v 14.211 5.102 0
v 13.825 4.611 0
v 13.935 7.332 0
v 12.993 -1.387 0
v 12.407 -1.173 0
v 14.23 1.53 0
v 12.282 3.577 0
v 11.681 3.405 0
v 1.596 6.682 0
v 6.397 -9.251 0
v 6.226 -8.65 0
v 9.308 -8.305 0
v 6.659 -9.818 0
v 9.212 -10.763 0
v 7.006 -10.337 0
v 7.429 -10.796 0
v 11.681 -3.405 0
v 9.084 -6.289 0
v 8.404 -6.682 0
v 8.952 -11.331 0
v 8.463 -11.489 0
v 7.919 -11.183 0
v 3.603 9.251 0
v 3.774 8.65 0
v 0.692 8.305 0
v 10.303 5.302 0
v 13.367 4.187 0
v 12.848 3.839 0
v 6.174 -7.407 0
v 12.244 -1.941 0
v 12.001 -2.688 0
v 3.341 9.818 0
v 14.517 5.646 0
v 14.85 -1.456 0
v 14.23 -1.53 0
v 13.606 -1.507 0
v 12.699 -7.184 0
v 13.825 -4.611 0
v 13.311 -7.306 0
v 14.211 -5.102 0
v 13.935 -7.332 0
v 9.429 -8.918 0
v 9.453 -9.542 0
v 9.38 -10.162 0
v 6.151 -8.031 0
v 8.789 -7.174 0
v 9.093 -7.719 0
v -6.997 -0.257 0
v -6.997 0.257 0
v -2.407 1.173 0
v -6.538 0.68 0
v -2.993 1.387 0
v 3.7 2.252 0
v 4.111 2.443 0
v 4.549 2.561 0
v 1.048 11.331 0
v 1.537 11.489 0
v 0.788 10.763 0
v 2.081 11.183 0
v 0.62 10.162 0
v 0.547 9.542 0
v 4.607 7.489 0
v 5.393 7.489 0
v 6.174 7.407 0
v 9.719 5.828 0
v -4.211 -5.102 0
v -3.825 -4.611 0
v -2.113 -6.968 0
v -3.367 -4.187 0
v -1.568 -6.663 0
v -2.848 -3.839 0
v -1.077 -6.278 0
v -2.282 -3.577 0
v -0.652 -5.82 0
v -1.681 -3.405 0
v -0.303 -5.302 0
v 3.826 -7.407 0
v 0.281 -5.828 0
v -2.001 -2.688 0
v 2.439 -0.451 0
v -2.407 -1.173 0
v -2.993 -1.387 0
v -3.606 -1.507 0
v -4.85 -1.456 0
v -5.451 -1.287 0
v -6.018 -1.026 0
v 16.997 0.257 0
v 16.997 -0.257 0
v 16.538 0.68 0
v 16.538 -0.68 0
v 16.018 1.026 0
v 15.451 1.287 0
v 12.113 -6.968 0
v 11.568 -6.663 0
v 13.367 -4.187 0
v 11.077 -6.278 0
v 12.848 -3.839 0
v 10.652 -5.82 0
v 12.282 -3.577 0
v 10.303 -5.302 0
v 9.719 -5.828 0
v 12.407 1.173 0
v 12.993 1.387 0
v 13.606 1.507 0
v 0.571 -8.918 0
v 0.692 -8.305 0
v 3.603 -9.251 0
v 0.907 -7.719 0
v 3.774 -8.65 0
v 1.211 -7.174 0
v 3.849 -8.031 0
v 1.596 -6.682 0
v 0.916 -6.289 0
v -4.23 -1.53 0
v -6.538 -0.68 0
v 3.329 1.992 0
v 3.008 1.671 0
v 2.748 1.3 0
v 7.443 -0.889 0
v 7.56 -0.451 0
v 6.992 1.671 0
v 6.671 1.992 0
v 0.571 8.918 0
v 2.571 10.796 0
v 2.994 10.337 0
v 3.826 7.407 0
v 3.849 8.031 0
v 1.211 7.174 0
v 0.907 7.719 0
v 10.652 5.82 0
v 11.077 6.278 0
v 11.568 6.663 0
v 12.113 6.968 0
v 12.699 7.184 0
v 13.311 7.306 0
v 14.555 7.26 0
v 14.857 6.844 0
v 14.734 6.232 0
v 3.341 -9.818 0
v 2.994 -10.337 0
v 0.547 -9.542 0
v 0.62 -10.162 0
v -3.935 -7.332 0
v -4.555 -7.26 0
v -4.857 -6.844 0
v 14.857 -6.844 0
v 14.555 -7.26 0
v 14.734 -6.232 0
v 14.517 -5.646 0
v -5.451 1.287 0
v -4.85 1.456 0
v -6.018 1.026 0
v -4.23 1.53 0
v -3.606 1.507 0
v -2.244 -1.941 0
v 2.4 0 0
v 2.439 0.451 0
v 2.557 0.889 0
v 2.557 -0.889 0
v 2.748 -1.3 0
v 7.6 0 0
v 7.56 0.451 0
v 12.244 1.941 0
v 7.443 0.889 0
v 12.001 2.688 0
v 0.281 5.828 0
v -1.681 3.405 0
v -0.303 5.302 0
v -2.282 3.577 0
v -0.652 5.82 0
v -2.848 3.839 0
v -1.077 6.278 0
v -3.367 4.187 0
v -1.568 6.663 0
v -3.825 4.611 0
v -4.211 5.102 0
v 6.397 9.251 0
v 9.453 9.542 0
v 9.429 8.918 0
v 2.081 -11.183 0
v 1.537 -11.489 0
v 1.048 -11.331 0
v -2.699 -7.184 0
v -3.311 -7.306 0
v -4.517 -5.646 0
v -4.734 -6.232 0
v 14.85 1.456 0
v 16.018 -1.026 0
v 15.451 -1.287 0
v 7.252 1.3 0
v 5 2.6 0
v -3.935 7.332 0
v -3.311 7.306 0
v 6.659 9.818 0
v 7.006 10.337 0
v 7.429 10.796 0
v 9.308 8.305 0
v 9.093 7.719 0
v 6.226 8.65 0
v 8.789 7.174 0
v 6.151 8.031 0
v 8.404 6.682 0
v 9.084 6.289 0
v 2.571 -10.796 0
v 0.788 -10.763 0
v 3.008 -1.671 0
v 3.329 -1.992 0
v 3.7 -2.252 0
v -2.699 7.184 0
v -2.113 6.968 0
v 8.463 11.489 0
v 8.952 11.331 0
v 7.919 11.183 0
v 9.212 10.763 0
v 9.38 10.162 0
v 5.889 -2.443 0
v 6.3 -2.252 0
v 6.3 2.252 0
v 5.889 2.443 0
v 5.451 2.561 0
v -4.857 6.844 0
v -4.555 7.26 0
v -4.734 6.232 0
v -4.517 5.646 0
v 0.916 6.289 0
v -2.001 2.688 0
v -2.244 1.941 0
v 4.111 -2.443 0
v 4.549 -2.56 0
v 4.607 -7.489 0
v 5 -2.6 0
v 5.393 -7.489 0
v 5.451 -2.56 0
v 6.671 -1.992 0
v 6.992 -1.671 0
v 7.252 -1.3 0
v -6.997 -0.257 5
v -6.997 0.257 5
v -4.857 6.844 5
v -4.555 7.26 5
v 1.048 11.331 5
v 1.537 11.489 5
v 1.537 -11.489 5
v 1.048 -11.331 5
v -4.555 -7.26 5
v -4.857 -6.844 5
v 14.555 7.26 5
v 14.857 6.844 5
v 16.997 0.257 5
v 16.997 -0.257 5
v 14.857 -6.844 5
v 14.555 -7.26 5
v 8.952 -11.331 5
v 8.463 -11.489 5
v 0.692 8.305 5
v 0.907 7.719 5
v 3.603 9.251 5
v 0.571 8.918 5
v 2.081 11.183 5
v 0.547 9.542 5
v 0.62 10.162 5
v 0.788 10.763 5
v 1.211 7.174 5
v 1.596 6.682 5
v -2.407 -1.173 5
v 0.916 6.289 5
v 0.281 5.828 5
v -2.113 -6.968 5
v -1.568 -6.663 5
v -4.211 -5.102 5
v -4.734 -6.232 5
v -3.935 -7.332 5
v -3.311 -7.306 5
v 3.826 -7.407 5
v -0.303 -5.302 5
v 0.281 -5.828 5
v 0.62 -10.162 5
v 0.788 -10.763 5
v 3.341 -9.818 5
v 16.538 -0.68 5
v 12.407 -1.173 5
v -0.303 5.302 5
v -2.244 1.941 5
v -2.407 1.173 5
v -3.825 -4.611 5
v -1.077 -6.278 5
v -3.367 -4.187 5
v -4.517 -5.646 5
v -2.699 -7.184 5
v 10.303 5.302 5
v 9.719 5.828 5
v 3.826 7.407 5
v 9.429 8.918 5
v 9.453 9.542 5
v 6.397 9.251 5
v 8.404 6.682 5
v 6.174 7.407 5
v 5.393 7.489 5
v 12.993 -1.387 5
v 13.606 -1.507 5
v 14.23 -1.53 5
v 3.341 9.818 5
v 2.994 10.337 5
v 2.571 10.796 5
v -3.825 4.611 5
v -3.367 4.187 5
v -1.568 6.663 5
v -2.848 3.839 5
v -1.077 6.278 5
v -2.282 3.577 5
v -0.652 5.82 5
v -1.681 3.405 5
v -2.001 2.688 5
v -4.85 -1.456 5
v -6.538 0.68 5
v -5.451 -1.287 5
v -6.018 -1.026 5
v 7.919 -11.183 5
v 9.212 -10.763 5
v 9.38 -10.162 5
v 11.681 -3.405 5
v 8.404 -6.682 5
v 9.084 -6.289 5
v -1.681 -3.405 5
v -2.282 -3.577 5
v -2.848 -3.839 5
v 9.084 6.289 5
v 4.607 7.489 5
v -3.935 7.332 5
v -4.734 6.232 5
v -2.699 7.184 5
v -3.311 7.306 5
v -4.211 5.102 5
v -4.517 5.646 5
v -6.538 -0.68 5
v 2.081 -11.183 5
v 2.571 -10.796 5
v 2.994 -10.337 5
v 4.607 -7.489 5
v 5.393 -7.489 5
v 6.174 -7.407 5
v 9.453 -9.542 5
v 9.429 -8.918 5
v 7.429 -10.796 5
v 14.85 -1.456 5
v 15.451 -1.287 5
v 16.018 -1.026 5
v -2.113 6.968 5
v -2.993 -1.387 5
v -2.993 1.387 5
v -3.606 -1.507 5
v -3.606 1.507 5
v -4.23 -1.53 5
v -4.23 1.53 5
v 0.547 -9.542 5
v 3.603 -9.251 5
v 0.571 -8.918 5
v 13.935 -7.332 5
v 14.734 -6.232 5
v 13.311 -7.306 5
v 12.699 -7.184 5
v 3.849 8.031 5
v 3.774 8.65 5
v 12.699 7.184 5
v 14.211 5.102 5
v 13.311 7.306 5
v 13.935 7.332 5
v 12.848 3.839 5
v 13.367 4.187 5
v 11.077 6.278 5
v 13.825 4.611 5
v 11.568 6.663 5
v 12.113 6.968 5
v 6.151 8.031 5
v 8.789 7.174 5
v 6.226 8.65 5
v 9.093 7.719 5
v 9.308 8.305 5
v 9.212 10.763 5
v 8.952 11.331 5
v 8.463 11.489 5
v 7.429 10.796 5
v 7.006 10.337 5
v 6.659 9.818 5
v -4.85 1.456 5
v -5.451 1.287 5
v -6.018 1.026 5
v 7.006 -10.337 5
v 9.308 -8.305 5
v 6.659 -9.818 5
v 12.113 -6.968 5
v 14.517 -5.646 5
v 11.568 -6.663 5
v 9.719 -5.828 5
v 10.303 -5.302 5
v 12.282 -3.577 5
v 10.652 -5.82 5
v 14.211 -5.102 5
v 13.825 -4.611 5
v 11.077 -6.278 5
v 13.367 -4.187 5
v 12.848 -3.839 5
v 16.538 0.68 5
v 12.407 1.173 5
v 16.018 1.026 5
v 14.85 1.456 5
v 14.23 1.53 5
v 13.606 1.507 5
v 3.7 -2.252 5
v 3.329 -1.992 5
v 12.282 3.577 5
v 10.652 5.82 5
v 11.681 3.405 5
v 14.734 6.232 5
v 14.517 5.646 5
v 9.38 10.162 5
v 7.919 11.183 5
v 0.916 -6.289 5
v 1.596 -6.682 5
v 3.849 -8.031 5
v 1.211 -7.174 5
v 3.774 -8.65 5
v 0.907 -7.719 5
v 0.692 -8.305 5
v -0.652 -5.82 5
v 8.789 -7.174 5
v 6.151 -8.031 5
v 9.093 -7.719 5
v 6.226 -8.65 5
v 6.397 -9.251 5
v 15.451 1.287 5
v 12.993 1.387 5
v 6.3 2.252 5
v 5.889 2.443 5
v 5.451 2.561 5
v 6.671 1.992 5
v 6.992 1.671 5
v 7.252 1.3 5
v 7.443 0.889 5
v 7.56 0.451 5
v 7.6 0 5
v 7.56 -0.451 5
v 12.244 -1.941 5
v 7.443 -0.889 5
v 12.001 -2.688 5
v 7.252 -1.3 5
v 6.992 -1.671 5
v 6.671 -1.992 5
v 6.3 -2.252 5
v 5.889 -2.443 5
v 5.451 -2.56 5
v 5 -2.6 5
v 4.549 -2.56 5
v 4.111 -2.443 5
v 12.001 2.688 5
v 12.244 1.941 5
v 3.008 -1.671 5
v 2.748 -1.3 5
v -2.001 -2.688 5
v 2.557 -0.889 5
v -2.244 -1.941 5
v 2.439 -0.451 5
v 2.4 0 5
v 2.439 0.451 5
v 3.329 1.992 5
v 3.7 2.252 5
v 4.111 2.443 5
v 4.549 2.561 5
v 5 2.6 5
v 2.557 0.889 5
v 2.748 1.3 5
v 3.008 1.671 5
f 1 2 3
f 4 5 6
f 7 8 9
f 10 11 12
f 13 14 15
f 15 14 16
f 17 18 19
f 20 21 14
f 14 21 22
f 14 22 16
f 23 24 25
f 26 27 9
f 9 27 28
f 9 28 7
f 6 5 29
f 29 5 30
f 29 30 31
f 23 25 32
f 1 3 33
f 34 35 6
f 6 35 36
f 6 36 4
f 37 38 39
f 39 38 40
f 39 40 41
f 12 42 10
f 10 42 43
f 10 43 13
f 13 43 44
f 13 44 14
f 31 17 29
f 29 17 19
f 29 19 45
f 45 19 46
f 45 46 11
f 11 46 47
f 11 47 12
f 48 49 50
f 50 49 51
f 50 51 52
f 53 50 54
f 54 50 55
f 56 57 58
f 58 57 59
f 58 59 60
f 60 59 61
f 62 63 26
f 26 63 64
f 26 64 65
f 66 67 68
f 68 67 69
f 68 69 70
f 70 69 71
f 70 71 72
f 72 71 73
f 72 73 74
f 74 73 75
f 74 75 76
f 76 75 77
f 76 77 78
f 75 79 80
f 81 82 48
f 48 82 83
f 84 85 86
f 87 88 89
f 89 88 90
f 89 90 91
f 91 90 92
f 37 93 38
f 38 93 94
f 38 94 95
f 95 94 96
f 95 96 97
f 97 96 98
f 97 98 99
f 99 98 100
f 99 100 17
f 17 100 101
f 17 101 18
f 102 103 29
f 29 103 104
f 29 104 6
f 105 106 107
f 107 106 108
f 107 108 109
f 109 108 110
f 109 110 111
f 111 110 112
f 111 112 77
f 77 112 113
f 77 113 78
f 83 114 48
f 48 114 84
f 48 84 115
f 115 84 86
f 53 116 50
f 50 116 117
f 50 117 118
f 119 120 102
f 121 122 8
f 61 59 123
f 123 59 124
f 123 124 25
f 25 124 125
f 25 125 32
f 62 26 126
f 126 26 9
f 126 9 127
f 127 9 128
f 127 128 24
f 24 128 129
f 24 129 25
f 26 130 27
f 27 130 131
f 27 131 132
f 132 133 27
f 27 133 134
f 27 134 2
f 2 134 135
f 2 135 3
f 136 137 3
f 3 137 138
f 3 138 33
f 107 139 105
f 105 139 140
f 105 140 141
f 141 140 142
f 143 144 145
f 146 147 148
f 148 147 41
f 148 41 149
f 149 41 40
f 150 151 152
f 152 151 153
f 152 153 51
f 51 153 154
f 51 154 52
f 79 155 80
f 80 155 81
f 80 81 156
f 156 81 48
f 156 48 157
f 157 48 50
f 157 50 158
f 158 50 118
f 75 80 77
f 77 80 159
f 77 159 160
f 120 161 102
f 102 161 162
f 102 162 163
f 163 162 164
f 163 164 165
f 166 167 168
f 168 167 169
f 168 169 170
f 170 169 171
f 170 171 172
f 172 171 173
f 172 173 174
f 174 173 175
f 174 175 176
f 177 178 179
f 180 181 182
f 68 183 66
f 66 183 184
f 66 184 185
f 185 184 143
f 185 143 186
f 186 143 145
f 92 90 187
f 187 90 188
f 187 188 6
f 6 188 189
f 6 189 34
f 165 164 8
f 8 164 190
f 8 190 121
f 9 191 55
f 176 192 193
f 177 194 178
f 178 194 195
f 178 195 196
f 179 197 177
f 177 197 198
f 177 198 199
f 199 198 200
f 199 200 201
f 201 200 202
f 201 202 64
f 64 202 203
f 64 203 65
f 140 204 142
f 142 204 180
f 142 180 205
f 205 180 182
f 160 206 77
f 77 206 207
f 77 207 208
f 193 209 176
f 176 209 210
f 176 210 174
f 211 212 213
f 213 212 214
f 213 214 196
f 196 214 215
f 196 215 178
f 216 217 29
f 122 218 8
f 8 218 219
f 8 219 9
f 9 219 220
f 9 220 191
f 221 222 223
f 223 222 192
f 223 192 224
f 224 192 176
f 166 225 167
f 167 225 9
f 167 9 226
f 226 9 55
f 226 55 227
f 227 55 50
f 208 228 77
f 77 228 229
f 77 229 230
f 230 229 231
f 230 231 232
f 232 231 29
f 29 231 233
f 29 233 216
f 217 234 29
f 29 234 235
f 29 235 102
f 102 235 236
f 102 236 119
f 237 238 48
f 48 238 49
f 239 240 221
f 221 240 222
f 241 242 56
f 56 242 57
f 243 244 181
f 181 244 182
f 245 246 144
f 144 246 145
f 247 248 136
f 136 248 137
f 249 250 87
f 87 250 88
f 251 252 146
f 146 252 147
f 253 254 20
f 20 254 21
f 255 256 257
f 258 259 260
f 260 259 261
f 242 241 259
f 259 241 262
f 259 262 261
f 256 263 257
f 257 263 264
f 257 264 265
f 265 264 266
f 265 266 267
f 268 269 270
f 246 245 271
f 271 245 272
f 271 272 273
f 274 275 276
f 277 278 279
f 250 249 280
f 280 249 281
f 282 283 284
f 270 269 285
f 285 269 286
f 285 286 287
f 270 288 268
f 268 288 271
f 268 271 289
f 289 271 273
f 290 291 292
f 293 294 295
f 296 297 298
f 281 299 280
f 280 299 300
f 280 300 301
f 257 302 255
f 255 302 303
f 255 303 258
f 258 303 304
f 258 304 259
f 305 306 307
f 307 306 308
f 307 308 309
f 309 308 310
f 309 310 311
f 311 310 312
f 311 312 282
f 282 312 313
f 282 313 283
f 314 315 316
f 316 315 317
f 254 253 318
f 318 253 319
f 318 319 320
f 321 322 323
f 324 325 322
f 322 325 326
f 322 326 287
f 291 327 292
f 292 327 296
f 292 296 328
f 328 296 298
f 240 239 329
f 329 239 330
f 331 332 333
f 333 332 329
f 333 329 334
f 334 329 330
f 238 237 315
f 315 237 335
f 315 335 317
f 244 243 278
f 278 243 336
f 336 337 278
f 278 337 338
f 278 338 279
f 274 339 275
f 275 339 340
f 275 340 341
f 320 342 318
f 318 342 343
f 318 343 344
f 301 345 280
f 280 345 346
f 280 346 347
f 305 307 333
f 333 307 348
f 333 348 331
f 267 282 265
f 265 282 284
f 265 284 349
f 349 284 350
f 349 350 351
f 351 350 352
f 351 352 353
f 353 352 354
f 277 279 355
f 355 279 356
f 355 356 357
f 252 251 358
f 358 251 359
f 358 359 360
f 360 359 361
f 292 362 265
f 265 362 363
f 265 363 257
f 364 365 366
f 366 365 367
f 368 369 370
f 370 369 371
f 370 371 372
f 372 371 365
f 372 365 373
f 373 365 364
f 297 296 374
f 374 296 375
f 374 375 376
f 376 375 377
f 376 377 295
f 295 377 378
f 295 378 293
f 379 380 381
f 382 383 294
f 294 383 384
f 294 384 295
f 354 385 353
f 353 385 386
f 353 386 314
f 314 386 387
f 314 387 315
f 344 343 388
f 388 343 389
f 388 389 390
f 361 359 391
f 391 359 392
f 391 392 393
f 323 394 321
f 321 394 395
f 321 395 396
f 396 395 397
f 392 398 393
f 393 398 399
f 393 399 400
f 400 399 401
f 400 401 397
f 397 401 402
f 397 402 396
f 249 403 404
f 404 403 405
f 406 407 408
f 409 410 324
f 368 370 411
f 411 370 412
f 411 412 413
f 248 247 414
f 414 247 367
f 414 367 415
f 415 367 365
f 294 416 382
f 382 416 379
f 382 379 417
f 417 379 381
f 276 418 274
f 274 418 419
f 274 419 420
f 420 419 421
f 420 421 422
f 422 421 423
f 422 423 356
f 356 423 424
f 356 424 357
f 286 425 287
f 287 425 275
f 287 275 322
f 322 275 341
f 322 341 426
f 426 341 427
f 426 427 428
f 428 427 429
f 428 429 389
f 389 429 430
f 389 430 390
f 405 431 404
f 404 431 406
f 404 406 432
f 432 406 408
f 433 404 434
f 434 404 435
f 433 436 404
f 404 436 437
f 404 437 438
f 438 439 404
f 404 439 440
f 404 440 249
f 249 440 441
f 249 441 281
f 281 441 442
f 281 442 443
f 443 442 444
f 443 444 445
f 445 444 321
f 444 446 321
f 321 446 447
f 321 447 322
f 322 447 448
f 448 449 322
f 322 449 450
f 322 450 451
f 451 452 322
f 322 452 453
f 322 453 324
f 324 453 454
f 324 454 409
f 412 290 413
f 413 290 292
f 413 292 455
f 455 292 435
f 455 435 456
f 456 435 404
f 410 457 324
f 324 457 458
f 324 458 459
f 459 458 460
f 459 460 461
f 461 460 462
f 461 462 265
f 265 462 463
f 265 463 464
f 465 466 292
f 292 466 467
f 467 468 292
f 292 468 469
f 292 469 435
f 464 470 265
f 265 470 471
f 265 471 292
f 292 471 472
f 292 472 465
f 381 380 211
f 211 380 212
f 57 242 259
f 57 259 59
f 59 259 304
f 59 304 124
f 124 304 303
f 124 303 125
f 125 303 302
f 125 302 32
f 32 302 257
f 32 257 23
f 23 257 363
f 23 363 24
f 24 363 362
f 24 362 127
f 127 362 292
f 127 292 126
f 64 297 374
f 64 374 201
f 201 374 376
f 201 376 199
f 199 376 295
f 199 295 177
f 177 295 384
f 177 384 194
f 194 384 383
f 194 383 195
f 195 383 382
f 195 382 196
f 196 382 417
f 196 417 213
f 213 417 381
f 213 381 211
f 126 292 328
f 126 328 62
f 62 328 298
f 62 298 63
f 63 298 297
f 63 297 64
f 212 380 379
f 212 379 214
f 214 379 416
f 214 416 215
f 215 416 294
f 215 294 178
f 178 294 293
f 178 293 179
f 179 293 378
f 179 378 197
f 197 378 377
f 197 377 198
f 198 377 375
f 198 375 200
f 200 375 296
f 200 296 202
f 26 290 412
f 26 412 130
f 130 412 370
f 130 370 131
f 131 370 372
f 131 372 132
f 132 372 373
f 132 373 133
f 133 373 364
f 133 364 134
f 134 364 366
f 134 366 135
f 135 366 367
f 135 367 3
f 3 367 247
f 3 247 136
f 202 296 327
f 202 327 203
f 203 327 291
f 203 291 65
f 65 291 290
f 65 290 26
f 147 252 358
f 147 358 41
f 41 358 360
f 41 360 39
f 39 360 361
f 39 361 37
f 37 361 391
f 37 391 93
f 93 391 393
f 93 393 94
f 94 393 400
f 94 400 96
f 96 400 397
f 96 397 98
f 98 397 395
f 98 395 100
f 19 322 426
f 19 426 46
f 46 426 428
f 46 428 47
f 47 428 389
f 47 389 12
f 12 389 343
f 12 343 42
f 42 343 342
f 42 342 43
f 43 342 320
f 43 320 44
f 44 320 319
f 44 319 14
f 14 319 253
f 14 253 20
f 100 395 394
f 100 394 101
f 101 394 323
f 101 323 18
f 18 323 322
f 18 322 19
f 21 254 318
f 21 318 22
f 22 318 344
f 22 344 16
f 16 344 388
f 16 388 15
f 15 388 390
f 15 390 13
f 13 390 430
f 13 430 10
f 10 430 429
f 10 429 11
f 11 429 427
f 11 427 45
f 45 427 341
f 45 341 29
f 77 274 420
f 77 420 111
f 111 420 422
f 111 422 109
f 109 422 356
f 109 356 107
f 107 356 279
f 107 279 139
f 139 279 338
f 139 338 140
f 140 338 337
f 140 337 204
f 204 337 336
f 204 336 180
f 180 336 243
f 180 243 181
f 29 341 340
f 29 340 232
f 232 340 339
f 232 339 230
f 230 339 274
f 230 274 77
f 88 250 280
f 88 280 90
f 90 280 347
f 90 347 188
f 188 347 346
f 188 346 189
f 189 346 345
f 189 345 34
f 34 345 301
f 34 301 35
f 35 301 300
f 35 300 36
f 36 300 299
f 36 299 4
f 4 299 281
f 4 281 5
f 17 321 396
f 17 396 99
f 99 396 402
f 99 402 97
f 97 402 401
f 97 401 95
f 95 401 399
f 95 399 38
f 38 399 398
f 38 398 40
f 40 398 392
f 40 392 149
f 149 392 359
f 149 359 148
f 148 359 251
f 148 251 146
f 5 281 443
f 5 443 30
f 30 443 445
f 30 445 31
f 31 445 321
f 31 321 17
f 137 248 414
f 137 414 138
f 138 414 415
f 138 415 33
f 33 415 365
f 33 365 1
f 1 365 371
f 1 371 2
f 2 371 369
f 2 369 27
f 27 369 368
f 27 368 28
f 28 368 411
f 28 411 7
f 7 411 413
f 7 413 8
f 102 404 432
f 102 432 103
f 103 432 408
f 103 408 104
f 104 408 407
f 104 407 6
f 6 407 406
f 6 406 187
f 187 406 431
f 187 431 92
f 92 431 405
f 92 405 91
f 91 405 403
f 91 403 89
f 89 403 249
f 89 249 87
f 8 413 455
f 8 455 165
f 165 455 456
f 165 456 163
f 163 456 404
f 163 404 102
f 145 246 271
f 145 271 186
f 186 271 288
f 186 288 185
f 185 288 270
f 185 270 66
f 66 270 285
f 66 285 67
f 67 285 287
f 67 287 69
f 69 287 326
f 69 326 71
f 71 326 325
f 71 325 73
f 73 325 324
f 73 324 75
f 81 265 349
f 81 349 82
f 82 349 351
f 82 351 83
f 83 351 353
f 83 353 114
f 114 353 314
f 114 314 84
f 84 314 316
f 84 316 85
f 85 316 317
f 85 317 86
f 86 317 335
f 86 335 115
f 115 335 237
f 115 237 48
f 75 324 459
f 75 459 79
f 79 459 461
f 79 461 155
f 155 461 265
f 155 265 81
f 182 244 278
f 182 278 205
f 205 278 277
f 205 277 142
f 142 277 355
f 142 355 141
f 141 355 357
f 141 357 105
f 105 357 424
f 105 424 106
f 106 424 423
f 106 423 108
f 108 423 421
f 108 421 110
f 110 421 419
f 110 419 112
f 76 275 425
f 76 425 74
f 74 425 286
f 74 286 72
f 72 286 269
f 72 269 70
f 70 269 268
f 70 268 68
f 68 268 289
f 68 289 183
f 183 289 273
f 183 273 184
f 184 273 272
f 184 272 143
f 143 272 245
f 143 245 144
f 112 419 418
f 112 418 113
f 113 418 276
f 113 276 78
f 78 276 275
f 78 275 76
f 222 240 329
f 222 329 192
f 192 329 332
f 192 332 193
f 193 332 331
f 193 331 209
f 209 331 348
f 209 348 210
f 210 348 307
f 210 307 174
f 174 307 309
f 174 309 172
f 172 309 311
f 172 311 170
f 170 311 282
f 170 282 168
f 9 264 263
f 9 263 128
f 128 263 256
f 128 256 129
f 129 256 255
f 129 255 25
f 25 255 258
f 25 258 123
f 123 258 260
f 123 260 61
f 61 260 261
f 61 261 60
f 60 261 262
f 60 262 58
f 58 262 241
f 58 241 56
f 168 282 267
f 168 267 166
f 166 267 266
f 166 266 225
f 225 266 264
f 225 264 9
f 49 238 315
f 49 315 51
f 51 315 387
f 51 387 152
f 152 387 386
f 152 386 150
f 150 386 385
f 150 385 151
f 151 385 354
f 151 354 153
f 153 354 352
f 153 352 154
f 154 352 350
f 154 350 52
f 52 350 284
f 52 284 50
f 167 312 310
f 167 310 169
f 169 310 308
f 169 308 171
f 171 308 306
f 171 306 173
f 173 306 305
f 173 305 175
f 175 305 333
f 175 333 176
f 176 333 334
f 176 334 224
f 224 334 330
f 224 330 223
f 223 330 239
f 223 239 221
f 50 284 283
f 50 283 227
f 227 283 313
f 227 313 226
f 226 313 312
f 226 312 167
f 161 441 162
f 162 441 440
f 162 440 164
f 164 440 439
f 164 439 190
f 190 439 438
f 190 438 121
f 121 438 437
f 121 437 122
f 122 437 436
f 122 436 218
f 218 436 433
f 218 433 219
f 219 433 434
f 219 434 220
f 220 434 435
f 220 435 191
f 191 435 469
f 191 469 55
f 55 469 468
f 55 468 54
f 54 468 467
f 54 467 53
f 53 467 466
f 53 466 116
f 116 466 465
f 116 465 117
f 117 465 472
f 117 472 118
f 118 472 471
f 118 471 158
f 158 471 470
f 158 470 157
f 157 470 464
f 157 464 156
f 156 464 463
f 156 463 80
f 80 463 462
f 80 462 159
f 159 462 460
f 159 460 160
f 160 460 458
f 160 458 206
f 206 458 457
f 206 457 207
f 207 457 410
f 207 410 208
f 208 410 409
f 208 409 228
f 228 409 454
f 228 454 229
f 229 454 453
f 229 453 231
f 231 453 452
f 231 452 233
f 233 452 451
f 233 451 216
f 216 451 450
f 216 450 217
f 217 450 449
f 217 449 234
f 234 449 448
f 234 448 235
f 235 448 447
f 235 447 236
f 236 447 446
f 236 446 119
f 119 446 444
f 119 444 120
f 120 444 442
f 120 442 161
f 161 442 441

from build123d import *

# Parameters (mm, degrees)
BASPROSKE_W                      = 5
BASPROSKE_H                      = 12
TOOTHCUT_DEPTH                   = 18.691806013
TEETHCUTS_COUNT                  = 10
TEETHCUTS_ANGLE                  = 324
BORSKE_R                         = 2.5
BORE_DEPTH                       = 50.0000508
S_LIDO_MOVER_COPIAR1_START       = -12
S_LIDO_MOVER_COPIAR1_OUTLINE_W   = 5
S_LIDO_MOVER_COPIAR1_OUTLINE_H   = 26
S_LIDO_MOVER_COPIAR1_DEPTH       = 12
S_LIDO_MOVER_COPIAR1_START_2     = 5
S_LIDO_MOVER_COPIAR1_2_OUTLINE_W = 5
S_LIDO_MOVER_COPIAR1_2_OUTLINE_H = 26
S_LIDO_MOVER_COPIAR1_2_DEPTH     = 7
S_LIDO_MOVER_COPIAR1_3_DEPTH     = 5
S_LIDO_MOVER_COPIAR1_4_OUTLINE_R = 2.5
S_LIDO_MOVER_COPIAR1_4_DEPTH     = 5
CROQUIS1_R                       = 2.6
CORTAR_EXTRUIR2_DEPTH            = 22.118885154


# Read off the part's stored shape, not the designer's step: Sólido-Mover/Copiar1
with BuildPart() as part:
    # BasProSke → Base-Revolve (revolve)
    with BuildSketch(Plane(origin=(0, 0, 0), x_dir=(1, 0, 0), z_dir=(0, 1, 0)), mode=Mode.PRIVATE) as base_revolve_sk:
        with Locations((2.5, 6)):
            Rectangle(BASPROSKE_W, BASPROSKE_H)
    revolve(base_revolve_sk.sketch.rotate(Axis((-10, 0, 0), (1, 0, 0)), 180), axis=Axis((-10, 0, 0), (1, 0, 0)))

    # TooCutSke → ToothCut (cut, through all)
    with BuildSketch(Plane(origin=(0, 0, 0), x_dir=(0, 0, -1), z_dir=(1, 0, 0))):
        with BuildLine():
            ThreePointArc((1.173662691, 7.406586048), (0, 7.499), (-1.173662691, 7.406586048))
            ThreePointArc((-1.173662691, 7.406586048), (-1.668191438, 9.834565786), (-3.497907776, 11.50542856))
            ThreePointArc((-3.497907776, 11.50542856), (0, 12.0254), (3.497907776, 11.50542856))
            ThreePointArc((3.497907776, 11.50542856), (1.668191438, 9.834565786), (1.173662691, 7.406586048))
        make_face()
    toothcut = extrude(amount=TOOTHCUT_DEPTH, mode=Mode.SUBTRACT)

    # TeethCuts: ToothCut ×10 about axis
    teethcuts_axis = Axis((-10, 0, 0), (1, 0, 0))
    for i in range(1, TEETHCUTS_COUNT):
        add(toothcut.rotate(teethcuts_axis, i * TEETHCUTS_ANGLE / (TEETHCUTS_COUNT - 1)), mode=Mode.SUBTRACT)

    # BorSke → Bore (cut, symmetric)
    with BuildSketch(Plane(origin=(0, 0, 0), x_dir=(0, 0, -1), z_dir=(1, 0, 0))):
        with Locations(Location((0, 0, 0), (0, 0, 180))):
            Circle(BORSKE_R)
    extrude(amount=BORE_DEPTH, both=True, mode=Mode.SUBTRACT)

    # Sólido-Mover/Copiar1 outline → Sólido-Mover/Copiar1 (cut)
    with BuildSketch(Plane.XY.offset(S_LIDO_MOVER_COPIAR1_START)):
        with Locations((2.5, 0)):
            Rectangle(S_LIDO_MOVER_COPIAR1_OUTLINE_W, S_LIDO_MOVER_COPIAR1_OUTLINE_H)
    extrude(amount=S_LIDO_MOVER_COPIAR1_DEPTH, mode=Mode.SUBTRACT)

    # S_lido-Mover_Copiar1 2 outline → S_lido-Mover_Copiar1 2 (cut)
    with BuildSketch(Plane.XY.offset(S_LIDO_MOVER_COPIAR1_START_2)):
        with Locations((2.5, 0)):
            Rectangle(S_LIDO_MOVER_COPIAR1_2_OUTLINE_W, S_LIDO_MOVER_COPIAR1_2_OUTLINE_H)
    extrude(amount=S_LIDO_MOVER_COPIAR1_2_DEPTH, mode=Mode.SUBTRACT)

    # S_lido-Mover_Copiar1 3 outline → S_lido-Mover_Copiar1 3 (cut)
    with BuildSketch(Plane.XY):
        with BuildLine():
            Line((0, 13), (0, 5.588828232))
            ThreePointArc((0, 5.588828232), (0.762620659, 6.187052394), (1.596031014, 6.681915604))
            ThreePointArc((1.596031014, 6.681915604), (0.571180494, 8.917819898), (1.0483384, 11.330682707))
            ThreePointArc((1.0483384, 11.330682707), (1.291796067, 11.412678196), (1.536953197, 11.489443278))
            ThreePointArc((1.536953197, 11.489443278), (3.341227227, 9.817862641), (3.826337309, 7.406586048))
            ThreePointArc((3.826337309, 7.406586048), (4.411352302, 7.475860812), (5, 7.499))
            Line((5, 7.499), (5, 13))
            Line((5, 13), (0, 13))
        make_face()
        with BuildLine():
            ThreePointArc((1.596031014, -6.681915604), (0.762620659, -6.187052394), (0, -5.588828232))
            Line((0, -5.588828232), (0, -13))
            Line((0, -13), (5, -13))
            Line((5, -13), (5, -7.499))
            ThreePointArc((5, -7.499), (4.411352302, -7.475860812), (3.826337309, -7.406586048))
            ThreePointArc((3.826337309, -7.406586048), (3.341227227, -9.817862641), (1.536953197, -11.489443278))
            ThreePointArc((1.536953197, -11.489443278), (1.291796067, -11.412678196), (1.0483384, -11.330682707))
            ThreePointArc((1.0483384, -11.330682707), (0.571180494, -8.917819898), (1.596031014, -6.681915604))
        make_face()
        with BuildLine():
            Line((5, -2.5), (5, 2.5))
            ThreePointArc((5, 2.5), (2.5, 0), (5, -2.5))
        make_face()
    extrude(amount=S_LIDO_MOVER_COPIAR1_3_DEPTH, mode=Mode.SUBTRACT)

    # S_lido-Mover_Copiar1 4 outline → S_lido-Mover_Copiar1 4 (add)
    with BuildSketch(Plane.XY):
        with BuildLine():
            ThreePointArc((-2.406763642, 1.172541409), (-4.849931218, 1.456299749), (-6.997250213, 0.256880001))
            ThreePointArc((-6.997250213, 0.256880001), (-7, 0), (-6.997250213, -0.256880001))
            ThreePointArc((-6.997250213, -0.256880001), (-4.849931218, -1.456299749), (-2.406763642, -1.172541409))
            ThreePointArc((-2.406763642, -1.172541409), (-2.131972816, -2.317318441), (-1.681400207, -3.404980509))
            ThreePointArc((-1.681400207, -3.404980509), (-3.824753264, -4.61147306), (-4.856969584, -6.843986457))
            ThreePointArc((-4.856969584, -6.843986457), (-4.708203933, -7.053423027), (-4.554989032, -7.259627029))
            ThreePointArc((-4.554989032, -7.259627029), (-2.112770233, -6.967815552), (-0.302995112, -5.302192362))
            ThreePointArc((-0.302995112, -5.302192362), (0.592198393, -6.066818441), (1.596031014, -6.681915604))
            ThreePointArc((1.596031014, -6.681915604), (0.571180494, -8.917819898), (1.0483384, -11.330682707))
            ThreePointArc((1.0483384, -11.330682707), (1.291796067, -11.412678196), (1.536953197, -11.489443278))
            ThreePointArc((1.536953197, -11.489443278), (3.341227227, -9.817862641), (3.826337309, -7.406586048))
            ThreePointArc((3.826337309, -7.406586048), (5, -7.499), (6.173662691, -7.406586048))
            ThreePointArc((6.173662691, -7.406586048), (6.658772773, -9.817862641), (8.463046803, -11.489443278))
            ThreePointArc((8.463046803, -11.489443278), (8.708203933, -11.412678196), (8.9516616, -11.330682707))
            ThreePointArc((8.9516616, -11.330682707), (9.428819506, -8.917819898), (8.403968986, -6.681915604))
            ThreePointArc((8.403968986, -6.681915604), (9.407801607, -6.066818441), (10.302995112, -5.302192362))
            ThreePointArc((10.302995112, -5.302192362), (12.112770233, -6.967815552), (14.554989032, -7.259627029))
            ThreePointArc((14.554989032, -7.259627029), (14.708203933, -7.053423027), (14.856969584, -6.843986457))
            ThreePointArc((14.856969584, -6.843986457), (13.824753264, -4.61147306), (11.681400207, -3.404980509))
            ThreePointArc((11.681400207, -3.404980509), (12.131972816, -2.317318441), (12.406763642, -1.172541409))
            ThreePointArc((12.406763642, -1.172541409), (14.849931218, -1.456299749), (16.997250213, -0.256880001))
            ThreePointArc((16.997250213, -0.256880001), (17, 0), (16.997250213, 0.256880001))
            ThreePointArc((16.997250213, 0.256880001), (14.849931218, 1.456299749), (12.406763642, 1.172541409))
            ThreePointArc((12.406763642, 1.172541409), (12.131972816, 2.317318441), (11.681400207, 3.404980509))
            ThreePointArc((11.681400207, 3.404980509), (13.824753264, 4.61147306), (14.856969584, 6.843986457))
            ThreePointArc((14.856969584, 6.843986457), (14.708203933, 7.053423027), (14.554989032, 7.259627029))
            ThreePointArc((14.554989032, 7.259627029), (12.112770233, 6.967815552), (10.302995112, 5.302192362))
            ThreePointArc((10.302995112, 5.302192362), (9.407801607, 6.066818441), (8.403968986, 6.681915604))
            ThreePointArc((8.403968986, 6.681915604), (9.428819506, 8.917819898), (8.9516616, 11.330682707))
            ThreePointArc((8.9516616, 11.330682707), (8.708203933, 11.412678196), (8.463046803, 11.489443278))
            ThreePointArc((8.463046803, 11.489443278), (6.658772773, 9.817862641), (6.173662691, 7.406586048))
            ThreePointArc((6.173662691, 7.406586048), (5, 7.499), (3.826337309, 7.406586048))
            ThreePointArc((3.826337309, 7.406586048), (3.341227227, 9.817862641), (1.536953197, 11.489443278))
            ThreePointArc((1.536953197, 11.489443278), (1.291796067, 11.412678196), (1.0483384, 11.330682707))
            ThreePointArc((1.0483384, 11.330682707), (0.571180494, 8.917819898), (1.596031014, 6.681915604))
            ThreePointArc((1.596031014, 6.681915604), (0.592198393, 6.066818441), (-0.302995112, 5.302192362))
            ThreePointArc((-0.302995112, 5.302192362), (-2.112770233, 6.967815552), (-4.554989032, 7.259627029))
            ThreePointArc((-4.554989032, 7.259627029), (-4.708203933, 7.053423027), (-4.856969584, 6.843986457))
            ThreePointArc((-4.856969584, 6.843986457), (-3.824753264, 4.61147306), (-1.681400207, 3.404980509))
            ThreePointArc((-1.681400207, 3.404980509), (-2.131972816, 2.317318441), (-2.406763642, 1.172541409))
        make_face()
        with Locations((5, 0)):
            Circle(S_LIDO_MOVER_COPIAR1_4_OUTLINE_R, mode=Mode.SUBTRACT)
    extrude(amount=S_LIDO_MOVER_COPIAR1_4_DEPTH)

    # Croquis1 → Cortar-Extruir2 (cut, through all)
    with BuildSketch(Plane.XY.offset(5)):
        with Locations((5, 0)):
            Circle(CROQUIS1_R)
    extrude(amount=-CORTAR_EXTRUIR2_DEPTH, mode=Mode.SUBTRACT)


solid = part.part
